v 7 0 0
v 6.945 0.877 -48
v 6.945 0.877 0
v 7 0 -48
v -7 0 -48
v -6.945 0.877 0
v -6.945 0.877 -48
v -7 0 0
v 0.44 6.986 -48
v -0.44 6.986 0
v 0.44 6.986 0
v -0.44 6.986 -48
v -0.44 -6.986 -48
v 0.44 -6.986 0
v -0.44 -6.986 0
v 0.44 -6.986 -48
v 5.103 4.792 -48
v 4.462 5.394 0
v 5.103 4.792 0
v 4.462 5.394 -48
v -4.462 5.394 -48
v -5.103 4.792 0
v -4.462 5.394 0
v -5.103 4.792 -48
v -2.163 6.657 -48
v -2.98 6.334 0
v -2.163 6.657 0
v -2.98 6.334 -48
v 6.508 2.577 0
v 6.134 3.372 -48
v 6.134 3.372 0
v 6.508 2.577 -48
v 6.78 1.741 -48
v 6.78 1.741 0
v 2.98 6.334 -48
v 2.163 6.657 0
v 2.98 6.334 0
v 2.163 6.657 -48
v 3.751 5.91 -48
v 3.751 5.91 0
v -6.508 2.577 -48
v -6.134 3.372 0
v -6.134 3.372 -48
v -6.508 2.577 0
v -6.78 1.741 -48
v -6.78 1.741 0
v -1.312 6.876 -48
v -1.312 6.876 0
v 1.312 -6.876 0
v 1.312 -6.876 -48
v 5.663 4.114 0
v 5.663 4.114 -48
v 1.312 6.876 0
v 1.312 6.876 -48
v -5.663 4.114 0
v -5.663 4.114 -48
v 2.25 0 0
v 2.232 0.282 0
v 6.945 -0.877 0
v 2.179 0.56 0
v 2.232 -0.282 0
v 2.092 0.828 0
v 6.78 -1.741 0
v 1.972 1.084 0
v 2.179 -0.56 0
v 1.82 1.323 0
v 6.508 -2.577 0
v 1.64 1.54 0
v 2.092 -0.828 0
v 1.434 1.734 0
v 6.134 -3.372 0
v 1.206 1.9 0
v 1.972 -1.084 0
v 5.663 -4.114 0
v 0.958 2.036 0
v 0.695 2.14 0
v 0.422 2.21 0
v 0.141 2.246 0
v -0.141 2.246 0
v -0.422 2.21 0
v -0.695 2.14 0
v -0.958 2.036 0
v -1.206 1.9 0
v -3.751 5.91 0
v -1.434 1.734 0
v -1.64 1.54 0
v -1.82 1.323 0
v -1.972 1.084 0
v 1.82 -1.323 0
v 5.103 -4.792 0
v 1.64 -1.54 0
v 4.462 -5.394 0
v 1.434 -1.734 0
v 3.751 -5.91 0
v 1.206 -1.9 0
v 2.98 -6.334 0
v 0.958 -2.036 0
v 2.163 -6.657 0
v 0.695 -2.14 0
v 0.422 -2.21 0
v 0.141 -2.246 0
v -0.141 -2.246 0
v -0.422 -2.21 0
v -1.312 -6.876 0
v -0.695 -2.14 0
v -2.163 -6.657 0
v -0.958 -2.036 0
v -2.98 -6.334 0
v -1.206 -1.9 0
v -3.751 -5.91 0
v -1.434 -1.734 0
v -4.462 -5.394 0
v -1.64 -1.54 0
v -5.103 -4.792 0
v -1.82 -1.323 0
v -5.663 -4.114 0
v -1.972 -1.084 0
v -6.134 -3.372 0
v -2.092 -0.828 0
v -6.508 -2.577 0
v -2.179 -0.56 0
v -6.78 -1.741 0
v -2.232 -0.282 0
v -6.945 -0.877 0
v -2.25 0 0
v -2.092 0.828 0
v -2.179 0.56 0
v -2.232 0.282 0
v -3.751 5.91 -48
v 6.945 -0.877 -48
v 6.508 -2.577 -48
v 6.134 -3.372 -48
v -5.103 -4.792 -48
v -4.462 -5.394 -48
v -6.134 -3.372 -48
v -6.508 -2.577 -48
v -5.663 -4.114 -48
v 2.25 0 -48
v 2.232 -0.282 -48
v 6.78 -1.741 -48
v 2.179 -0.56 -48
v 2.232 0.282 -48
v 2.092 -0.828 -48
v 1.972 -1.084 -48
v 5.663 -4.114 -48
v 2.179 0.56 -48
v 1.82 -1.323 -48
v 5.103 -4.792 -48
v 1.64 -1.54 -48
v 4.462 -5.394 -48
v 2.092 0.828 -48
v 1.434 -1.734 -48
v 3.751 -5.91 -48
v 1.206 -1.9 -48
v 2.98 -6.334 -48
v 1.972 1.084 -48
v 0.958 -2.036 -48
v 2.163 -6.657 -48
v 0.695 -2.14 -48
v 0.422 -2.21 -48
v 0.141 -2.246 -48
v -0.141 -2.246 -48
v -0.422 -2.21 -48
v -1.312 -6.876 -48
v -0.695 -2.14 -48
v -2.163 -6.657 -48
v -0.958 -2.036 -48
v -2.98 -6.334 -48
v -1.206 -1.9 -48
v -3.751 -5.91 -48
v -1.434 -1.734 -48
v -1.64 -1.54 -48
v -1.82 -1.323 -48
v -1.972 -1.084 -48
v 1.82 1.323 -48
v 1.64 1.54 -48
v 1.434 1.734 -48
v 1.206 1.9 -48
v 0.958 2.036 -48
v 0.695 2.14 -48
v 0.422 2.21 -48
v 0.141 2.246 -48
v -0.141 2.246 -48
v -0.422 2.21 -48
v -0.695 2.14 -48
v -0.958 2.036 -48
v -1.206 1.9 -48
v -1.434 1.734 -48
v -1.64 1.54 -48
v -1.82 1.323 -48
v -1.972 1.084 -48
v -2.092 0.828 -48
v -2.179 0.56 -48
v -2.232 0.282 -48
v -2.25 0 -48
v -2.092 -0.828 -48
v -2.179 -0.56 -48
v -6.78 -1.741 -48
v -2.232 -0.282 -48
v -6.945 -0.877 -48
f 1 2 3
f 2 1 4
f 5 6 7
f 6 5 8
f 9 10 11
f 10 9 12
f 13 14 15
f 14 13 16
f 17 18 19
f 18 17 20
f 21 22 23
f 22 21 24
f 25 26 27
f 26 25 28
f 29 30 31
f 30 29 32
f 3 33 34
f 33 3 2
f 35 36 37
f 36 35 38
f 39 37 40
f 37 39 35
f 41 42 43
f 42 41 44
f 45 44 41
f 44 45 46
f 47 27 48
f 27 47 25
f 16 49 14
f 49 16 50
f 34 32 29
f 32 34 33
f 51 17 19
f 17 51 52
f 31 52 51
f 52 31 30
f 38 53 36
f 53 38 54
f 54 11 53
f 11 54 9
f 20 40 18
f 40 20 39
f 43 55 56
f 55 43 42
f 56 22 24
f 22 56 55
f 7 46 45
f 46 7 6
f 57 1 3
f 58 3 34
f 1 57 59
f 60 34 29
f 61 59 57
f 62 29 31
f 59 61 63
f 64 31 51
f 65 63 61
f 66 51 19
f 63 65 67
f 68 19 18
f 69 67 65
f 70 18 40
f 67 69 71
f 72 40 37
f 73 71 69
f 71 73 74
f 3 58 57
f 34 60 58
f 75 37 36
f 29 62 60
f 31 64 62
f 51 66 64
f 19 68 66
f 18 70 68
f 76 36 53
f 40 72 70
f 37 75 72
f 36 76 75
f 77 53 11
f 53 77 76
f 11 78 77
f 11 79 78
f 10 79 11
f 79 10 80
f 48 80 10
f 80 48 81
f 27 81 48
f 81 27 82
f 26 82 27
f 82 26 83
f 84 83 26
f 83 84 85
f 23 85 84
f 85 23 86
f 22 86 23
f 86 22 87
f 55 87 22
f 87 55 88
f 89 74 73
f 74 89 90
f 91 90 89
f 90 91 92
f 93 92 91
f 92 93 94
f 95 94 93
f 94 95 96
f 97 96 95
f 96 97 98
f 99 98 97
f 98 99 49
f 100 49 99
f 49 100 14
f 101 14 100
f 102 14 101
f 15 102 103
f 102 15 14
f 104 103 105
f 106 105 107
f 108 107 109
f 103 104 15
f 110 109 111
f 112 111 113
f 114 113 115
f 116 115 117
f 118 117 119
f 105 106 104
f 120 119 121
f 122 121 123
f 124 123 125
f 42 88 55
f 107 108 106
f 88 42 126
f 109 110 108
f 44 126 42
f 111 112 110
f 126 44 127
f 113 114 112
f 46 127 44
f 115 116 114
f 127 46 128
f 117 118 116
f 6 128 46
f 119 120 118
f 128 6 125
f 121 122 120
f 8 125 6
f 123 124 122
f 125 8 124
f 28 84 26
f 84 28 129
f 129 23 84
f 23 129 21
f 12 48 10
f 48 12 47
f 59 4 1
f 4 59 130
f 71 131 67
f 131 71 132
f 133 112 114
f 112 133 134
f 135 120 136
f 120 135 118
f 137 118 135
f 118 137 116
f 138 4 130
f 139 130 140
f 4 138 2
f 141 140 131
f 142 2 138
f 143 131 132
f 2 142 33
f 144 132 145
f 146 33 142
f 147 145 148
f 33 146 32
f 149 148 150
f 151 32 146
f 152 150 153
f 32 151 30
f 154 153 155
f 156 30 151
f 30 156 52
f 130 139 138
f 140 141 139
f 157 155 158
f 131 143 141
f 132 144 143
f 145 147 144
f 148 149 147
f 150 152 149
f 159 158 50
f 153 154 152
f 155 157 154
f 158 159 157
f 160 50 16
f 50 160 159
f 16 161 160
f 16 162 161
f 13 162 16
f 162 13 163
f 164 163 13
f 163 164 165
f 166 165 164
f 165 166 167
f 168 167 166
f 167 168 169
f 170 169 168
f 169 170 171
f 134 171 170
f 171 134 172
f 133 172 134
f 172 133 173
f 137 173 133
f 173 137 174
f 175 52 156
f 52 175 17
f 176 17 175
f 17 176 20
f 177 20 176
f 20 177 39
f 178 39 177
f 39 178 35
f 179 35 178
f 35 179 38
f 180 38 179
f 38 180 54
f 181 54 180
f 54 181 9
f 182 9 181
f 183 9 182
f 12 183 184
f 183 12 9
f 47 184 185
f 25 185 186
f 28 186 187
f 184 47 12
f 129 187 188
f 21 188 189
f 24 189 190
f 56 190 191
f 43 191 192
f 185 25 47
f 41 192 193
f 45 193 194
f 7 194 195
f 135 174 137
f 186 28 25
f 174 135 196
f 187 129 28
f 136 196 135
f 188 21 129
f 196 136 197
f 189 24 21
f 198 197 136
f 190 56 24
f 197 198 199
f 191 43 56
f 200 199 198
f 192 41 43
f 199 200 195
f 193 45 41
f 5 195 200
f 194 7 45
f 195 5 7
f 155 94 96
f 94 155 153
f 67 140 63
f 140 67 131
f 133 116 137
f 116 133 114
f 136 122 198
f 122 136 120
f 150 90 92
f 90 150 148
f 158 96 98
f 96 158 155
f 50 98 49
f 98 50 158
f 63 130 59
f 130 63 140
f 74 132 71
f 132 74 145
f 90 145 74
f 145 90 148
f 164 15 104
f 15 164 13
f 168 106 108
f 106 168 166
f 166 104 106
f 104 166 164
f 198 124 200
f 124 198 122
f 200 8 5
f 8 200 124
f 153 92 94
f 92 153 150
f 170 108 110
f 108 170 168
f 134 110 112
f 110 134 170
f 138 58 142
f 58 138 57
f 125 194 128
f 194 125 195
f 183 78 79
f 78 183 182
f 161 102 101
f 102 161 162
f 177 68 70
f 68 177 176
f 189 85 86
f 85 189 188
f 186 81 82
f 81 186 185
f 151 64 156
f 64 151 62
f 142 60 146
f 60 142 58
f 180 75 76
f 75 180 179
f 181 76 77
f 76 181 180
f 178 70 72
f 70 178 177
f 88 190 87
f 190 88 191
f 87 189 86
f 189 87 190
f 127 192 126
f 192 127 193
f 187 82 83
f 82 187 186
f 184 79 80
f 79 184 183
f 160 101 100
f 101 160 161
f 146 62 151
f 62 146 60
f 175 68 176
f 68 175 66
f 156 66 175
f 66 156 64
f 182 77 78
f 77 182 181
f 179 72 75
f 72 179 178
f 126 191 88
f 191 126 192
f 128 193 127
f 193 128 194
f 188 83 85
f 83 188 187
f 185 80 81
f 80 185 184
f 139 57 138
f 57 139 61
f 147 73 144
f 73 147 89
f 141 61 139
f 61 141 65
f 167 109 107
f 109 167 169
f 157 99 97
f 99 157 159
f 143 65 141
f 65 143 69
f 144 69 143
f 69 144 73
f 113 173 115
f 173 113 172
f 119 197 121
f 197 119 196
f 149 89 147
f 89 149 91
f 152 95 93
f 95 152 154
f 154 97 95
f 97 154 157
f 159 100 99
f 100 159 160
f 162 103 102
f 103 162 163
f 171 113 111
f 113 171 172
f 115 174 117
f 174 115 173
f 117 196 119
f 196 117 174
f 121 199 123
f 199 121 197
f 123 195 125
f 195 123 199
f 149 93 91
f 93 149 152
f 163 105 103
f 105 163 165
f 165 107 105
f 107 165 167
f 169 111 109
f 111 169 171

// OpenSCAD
$fn = 50;


difference() {
	union() {
		translate(v = [0, 0, -48.0000000000]) {
			cylinder(h = 48, r = 7.0000000000);
		}
		cylinder(h = 0, r = 13.0000000000);
	}
	union() {
		#translate(v = [0, 0, -48]) {
			cylinder(h = 48, r = 2.2500000000);
		}
	}
}
